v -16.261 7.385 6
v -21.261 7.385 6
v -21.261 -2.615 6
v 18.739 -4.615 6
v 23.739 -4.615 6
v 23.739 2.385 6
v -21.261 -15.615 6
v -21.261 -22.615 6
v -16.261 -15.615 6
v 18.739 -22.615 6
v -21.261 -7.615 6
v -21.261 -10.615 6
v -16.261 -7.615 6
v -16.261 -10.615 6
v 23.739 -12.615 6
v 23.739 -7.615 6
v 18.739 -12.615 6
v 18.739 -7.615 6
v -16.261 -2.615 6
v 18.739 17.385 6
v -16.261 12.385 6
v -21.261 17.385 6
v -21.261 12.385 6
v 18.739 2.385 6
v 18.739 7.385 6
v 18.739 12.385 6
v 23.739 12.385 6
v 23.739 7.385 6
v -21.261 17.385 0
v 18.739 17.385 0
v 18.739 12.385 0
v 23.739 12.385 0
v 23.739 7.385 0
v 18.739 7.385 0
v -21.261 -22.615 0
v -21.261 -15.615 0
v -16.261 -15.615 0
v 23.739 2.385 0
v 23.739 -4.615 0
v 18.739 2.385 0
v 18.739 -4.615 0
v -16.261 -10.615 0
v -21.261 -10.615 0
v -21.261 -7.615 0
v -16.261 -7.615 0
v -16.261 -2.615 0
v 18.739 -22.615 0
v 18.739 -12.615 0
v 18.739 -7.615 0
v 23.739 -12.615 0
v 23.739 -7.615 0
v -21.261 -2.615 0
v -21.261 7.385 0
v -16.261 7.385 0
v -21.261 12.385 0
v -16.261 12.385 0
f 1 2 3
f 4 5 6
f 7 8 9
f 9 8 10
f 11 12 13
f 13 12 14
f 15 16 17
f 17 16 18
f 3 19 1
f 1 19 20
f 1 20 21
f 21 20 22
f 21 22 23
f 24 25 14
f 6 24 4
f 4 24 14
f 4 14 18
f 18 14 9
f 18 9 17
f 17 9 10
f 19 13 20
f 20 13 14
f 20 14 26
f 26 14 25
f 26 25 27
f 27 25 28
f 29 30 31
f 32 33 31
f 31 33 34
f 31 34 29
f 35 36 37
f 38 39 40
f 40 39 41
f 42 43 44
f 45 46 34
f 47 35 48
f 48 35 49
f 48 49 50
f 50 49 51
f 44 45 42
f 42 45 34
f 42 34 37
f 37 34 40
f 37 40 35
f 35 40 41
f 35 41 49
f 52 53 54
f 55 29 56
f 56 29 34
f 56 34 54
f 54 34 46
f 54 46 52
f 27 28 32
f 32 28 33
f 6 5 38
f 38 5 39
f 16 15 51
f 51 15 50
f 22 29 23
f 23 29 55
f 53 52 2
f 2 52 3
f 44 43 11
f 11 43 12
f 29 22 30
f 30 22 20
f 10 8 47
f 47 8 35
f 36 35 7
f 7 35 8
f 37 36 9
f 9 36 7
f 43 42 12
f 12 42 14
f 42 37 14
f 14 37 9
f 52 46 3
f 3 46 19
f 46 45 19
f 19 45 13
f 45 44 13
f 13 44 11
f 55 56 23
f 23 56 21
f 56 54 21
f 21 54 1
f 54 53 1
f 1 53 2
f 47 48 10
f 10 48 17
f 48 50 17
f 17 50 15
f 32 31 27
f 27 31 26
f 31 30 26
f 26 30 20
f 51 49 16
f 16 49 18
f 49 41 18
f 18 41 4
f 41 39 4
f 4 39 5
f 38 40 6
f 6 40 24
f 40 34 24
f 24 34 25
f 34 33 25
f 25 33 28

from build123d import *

# Parameters (mm, degrees)
SKETCH1_W           = 45
SKETCH1_H           = 40
BOSS_EXTRUDE1_DEPTH = 6
SKETCH2_W           = 5
SKETCH2_H           = 5
SKETCH2_H_2         = 7
CUT_EXTRUDE1_DEPTH  = 6
SKETCH3_W           = 5
SKETCH3_H           = 5
SKETCH3_H_2         = 3
SKETCH3_H_3         = 10
CUT_EXTRUDE2_DEPTH  = 6
SKETCH4_W           = 5
SKETCH4_H           = 25
BOSS_EXTRUDE3_DEPTH = 6
SKETCH8_W           = 5
SKETCH8_H           = 5
CUT_EXTRUDE5_DEPTH  = 6
SKETCH9_W           = 5
SKETCH9_H           = 40
BOSS_EXTRUDE4_DEPTH = 6
SKETCH10_W          = 5
SKETCH10_H          = 5
SKETCH10_H_2        = 3
SKETCH10_H_3        = 10
CUT_EXTRUDE7_DEPTH  = 6


with BuildPart() as part:
    # Sketch1 → Boss-Extrude1 (new body)
    with BuildSketch(Plane.XY):
        with Locations((1.238898757, -2.615452931)):
            Rectangle(SKETCH1_W, SKETCH1_H)
    extrude(amount=BOSS_EXTRUDE1_DEPTH)

    # Sketch2 → Cut-Extrude1 (cut)
    with BuildSketch(Plane.XY.offset(6)):
        with Locations((-18.761101243, 4.884547069)):
            Rectangle(SKETCH2_W, SKETCH2_H)
        with Locations((-18.761101243, -4.115452931)):
            Rectangle(SKETCH2_W, SKETCH2_H_2)
        with Locations((-18.761101243, -15.115452931)):
            Rectangle(SKETCH2_W, SKETCH2_H)
    extrude(amount=-CUT_EXTRUDE1_DEPTH, mode=Mode.SUBTRACT)

    # Sketch3 → Cut-Extrude2 (cut)
    with BuildSketch(Plane.XY.offset(6)):
        with Locations((21.238898757, -20.115452931)):
            Rectangle(SKETCH3_W, SKETCH3_H)
        with Locations((21.238898757, -9.115452931)):
            Rectangle(SKETCH3_W, SKETCH3_H_2)
        with Locations((21.238898757, 14.884547069)):
            Rectangle(SKETCH3_W, SKETCH3_H)
        with Locations((21.238898757, 2.384547069)):
            Rectangle(SKETCH3_W, SKETCH3_H_3)
    extrude(amount=-CUT_EXTRUDE2_DEPTH, mode=Mode.SUBTRACT)

    # Sketch4 → Boss-Extrude3 (add)
    with BuildSketch(Plane.XY.offset(6)):
        with Locations((-18.761101243, -5.115452931)):
            Rectangle(SKETCH4_W, SKETCH4_H)
    extrude(amount=-BOSS_EXTRUDE3_DEPTH)

    # Sketch8 → Cut-Extrude5 (cut)
    with BuildSketch(Plane.XY.offset(6)):
        with Locations((-18.761101243, -5.115452931)):
            Rectangle(SKETCH8_W, SKETCH8_H)
        with Locations((-18.761101243, -13.115452931)):
            Rectangle(SKETCH8_W, SKETCH8_H)
        with Locations((-18.761101243, 9.884547069)):
            Rectangle(SKETCH8_W, SKETCH8_H)
    extrude(amount=-CUT_EXTRUDE5_DEPTH, mode=Mode.SUBTRACT)

    # Sketch9 → Boss-Extrude4 (add)
    with BuildSketch(Plane.XY.offset(6)):
        with Locations((21.238898757, -2.615452931)):
            Rectangle(SKETCH9_W, SKETCH9_H)
    extrude(amount=-BOSS_EXTRUDE4_DEPTH)

    # Sketch10 → Cut-Extrude7 (cut)
    with BuildSketch(Plane.XY.offset(6)):
        with Locations((21.238898757, 14.884547069)):
            Rectangle(SKETCH10_W, SKETCH10_H)
        with Locations((21.238898757, 4.884547069)):
            Rectangle(SKETCH10_W, SKETCH10_H)
        with Locations((21.238898757, -6.115452931)):
            Rectangle(SKETCH10_W, SKETCH10_H_2)
        with Locations((21.238898757, -17.615452931)):
            Rectangle(SKETCH10_W, SKETCH10_H_3)
    extrude(amount=-CUT_EXTRUDE7_DEPTH, mode=Mode.SUBTRACT)


solid = part.part
